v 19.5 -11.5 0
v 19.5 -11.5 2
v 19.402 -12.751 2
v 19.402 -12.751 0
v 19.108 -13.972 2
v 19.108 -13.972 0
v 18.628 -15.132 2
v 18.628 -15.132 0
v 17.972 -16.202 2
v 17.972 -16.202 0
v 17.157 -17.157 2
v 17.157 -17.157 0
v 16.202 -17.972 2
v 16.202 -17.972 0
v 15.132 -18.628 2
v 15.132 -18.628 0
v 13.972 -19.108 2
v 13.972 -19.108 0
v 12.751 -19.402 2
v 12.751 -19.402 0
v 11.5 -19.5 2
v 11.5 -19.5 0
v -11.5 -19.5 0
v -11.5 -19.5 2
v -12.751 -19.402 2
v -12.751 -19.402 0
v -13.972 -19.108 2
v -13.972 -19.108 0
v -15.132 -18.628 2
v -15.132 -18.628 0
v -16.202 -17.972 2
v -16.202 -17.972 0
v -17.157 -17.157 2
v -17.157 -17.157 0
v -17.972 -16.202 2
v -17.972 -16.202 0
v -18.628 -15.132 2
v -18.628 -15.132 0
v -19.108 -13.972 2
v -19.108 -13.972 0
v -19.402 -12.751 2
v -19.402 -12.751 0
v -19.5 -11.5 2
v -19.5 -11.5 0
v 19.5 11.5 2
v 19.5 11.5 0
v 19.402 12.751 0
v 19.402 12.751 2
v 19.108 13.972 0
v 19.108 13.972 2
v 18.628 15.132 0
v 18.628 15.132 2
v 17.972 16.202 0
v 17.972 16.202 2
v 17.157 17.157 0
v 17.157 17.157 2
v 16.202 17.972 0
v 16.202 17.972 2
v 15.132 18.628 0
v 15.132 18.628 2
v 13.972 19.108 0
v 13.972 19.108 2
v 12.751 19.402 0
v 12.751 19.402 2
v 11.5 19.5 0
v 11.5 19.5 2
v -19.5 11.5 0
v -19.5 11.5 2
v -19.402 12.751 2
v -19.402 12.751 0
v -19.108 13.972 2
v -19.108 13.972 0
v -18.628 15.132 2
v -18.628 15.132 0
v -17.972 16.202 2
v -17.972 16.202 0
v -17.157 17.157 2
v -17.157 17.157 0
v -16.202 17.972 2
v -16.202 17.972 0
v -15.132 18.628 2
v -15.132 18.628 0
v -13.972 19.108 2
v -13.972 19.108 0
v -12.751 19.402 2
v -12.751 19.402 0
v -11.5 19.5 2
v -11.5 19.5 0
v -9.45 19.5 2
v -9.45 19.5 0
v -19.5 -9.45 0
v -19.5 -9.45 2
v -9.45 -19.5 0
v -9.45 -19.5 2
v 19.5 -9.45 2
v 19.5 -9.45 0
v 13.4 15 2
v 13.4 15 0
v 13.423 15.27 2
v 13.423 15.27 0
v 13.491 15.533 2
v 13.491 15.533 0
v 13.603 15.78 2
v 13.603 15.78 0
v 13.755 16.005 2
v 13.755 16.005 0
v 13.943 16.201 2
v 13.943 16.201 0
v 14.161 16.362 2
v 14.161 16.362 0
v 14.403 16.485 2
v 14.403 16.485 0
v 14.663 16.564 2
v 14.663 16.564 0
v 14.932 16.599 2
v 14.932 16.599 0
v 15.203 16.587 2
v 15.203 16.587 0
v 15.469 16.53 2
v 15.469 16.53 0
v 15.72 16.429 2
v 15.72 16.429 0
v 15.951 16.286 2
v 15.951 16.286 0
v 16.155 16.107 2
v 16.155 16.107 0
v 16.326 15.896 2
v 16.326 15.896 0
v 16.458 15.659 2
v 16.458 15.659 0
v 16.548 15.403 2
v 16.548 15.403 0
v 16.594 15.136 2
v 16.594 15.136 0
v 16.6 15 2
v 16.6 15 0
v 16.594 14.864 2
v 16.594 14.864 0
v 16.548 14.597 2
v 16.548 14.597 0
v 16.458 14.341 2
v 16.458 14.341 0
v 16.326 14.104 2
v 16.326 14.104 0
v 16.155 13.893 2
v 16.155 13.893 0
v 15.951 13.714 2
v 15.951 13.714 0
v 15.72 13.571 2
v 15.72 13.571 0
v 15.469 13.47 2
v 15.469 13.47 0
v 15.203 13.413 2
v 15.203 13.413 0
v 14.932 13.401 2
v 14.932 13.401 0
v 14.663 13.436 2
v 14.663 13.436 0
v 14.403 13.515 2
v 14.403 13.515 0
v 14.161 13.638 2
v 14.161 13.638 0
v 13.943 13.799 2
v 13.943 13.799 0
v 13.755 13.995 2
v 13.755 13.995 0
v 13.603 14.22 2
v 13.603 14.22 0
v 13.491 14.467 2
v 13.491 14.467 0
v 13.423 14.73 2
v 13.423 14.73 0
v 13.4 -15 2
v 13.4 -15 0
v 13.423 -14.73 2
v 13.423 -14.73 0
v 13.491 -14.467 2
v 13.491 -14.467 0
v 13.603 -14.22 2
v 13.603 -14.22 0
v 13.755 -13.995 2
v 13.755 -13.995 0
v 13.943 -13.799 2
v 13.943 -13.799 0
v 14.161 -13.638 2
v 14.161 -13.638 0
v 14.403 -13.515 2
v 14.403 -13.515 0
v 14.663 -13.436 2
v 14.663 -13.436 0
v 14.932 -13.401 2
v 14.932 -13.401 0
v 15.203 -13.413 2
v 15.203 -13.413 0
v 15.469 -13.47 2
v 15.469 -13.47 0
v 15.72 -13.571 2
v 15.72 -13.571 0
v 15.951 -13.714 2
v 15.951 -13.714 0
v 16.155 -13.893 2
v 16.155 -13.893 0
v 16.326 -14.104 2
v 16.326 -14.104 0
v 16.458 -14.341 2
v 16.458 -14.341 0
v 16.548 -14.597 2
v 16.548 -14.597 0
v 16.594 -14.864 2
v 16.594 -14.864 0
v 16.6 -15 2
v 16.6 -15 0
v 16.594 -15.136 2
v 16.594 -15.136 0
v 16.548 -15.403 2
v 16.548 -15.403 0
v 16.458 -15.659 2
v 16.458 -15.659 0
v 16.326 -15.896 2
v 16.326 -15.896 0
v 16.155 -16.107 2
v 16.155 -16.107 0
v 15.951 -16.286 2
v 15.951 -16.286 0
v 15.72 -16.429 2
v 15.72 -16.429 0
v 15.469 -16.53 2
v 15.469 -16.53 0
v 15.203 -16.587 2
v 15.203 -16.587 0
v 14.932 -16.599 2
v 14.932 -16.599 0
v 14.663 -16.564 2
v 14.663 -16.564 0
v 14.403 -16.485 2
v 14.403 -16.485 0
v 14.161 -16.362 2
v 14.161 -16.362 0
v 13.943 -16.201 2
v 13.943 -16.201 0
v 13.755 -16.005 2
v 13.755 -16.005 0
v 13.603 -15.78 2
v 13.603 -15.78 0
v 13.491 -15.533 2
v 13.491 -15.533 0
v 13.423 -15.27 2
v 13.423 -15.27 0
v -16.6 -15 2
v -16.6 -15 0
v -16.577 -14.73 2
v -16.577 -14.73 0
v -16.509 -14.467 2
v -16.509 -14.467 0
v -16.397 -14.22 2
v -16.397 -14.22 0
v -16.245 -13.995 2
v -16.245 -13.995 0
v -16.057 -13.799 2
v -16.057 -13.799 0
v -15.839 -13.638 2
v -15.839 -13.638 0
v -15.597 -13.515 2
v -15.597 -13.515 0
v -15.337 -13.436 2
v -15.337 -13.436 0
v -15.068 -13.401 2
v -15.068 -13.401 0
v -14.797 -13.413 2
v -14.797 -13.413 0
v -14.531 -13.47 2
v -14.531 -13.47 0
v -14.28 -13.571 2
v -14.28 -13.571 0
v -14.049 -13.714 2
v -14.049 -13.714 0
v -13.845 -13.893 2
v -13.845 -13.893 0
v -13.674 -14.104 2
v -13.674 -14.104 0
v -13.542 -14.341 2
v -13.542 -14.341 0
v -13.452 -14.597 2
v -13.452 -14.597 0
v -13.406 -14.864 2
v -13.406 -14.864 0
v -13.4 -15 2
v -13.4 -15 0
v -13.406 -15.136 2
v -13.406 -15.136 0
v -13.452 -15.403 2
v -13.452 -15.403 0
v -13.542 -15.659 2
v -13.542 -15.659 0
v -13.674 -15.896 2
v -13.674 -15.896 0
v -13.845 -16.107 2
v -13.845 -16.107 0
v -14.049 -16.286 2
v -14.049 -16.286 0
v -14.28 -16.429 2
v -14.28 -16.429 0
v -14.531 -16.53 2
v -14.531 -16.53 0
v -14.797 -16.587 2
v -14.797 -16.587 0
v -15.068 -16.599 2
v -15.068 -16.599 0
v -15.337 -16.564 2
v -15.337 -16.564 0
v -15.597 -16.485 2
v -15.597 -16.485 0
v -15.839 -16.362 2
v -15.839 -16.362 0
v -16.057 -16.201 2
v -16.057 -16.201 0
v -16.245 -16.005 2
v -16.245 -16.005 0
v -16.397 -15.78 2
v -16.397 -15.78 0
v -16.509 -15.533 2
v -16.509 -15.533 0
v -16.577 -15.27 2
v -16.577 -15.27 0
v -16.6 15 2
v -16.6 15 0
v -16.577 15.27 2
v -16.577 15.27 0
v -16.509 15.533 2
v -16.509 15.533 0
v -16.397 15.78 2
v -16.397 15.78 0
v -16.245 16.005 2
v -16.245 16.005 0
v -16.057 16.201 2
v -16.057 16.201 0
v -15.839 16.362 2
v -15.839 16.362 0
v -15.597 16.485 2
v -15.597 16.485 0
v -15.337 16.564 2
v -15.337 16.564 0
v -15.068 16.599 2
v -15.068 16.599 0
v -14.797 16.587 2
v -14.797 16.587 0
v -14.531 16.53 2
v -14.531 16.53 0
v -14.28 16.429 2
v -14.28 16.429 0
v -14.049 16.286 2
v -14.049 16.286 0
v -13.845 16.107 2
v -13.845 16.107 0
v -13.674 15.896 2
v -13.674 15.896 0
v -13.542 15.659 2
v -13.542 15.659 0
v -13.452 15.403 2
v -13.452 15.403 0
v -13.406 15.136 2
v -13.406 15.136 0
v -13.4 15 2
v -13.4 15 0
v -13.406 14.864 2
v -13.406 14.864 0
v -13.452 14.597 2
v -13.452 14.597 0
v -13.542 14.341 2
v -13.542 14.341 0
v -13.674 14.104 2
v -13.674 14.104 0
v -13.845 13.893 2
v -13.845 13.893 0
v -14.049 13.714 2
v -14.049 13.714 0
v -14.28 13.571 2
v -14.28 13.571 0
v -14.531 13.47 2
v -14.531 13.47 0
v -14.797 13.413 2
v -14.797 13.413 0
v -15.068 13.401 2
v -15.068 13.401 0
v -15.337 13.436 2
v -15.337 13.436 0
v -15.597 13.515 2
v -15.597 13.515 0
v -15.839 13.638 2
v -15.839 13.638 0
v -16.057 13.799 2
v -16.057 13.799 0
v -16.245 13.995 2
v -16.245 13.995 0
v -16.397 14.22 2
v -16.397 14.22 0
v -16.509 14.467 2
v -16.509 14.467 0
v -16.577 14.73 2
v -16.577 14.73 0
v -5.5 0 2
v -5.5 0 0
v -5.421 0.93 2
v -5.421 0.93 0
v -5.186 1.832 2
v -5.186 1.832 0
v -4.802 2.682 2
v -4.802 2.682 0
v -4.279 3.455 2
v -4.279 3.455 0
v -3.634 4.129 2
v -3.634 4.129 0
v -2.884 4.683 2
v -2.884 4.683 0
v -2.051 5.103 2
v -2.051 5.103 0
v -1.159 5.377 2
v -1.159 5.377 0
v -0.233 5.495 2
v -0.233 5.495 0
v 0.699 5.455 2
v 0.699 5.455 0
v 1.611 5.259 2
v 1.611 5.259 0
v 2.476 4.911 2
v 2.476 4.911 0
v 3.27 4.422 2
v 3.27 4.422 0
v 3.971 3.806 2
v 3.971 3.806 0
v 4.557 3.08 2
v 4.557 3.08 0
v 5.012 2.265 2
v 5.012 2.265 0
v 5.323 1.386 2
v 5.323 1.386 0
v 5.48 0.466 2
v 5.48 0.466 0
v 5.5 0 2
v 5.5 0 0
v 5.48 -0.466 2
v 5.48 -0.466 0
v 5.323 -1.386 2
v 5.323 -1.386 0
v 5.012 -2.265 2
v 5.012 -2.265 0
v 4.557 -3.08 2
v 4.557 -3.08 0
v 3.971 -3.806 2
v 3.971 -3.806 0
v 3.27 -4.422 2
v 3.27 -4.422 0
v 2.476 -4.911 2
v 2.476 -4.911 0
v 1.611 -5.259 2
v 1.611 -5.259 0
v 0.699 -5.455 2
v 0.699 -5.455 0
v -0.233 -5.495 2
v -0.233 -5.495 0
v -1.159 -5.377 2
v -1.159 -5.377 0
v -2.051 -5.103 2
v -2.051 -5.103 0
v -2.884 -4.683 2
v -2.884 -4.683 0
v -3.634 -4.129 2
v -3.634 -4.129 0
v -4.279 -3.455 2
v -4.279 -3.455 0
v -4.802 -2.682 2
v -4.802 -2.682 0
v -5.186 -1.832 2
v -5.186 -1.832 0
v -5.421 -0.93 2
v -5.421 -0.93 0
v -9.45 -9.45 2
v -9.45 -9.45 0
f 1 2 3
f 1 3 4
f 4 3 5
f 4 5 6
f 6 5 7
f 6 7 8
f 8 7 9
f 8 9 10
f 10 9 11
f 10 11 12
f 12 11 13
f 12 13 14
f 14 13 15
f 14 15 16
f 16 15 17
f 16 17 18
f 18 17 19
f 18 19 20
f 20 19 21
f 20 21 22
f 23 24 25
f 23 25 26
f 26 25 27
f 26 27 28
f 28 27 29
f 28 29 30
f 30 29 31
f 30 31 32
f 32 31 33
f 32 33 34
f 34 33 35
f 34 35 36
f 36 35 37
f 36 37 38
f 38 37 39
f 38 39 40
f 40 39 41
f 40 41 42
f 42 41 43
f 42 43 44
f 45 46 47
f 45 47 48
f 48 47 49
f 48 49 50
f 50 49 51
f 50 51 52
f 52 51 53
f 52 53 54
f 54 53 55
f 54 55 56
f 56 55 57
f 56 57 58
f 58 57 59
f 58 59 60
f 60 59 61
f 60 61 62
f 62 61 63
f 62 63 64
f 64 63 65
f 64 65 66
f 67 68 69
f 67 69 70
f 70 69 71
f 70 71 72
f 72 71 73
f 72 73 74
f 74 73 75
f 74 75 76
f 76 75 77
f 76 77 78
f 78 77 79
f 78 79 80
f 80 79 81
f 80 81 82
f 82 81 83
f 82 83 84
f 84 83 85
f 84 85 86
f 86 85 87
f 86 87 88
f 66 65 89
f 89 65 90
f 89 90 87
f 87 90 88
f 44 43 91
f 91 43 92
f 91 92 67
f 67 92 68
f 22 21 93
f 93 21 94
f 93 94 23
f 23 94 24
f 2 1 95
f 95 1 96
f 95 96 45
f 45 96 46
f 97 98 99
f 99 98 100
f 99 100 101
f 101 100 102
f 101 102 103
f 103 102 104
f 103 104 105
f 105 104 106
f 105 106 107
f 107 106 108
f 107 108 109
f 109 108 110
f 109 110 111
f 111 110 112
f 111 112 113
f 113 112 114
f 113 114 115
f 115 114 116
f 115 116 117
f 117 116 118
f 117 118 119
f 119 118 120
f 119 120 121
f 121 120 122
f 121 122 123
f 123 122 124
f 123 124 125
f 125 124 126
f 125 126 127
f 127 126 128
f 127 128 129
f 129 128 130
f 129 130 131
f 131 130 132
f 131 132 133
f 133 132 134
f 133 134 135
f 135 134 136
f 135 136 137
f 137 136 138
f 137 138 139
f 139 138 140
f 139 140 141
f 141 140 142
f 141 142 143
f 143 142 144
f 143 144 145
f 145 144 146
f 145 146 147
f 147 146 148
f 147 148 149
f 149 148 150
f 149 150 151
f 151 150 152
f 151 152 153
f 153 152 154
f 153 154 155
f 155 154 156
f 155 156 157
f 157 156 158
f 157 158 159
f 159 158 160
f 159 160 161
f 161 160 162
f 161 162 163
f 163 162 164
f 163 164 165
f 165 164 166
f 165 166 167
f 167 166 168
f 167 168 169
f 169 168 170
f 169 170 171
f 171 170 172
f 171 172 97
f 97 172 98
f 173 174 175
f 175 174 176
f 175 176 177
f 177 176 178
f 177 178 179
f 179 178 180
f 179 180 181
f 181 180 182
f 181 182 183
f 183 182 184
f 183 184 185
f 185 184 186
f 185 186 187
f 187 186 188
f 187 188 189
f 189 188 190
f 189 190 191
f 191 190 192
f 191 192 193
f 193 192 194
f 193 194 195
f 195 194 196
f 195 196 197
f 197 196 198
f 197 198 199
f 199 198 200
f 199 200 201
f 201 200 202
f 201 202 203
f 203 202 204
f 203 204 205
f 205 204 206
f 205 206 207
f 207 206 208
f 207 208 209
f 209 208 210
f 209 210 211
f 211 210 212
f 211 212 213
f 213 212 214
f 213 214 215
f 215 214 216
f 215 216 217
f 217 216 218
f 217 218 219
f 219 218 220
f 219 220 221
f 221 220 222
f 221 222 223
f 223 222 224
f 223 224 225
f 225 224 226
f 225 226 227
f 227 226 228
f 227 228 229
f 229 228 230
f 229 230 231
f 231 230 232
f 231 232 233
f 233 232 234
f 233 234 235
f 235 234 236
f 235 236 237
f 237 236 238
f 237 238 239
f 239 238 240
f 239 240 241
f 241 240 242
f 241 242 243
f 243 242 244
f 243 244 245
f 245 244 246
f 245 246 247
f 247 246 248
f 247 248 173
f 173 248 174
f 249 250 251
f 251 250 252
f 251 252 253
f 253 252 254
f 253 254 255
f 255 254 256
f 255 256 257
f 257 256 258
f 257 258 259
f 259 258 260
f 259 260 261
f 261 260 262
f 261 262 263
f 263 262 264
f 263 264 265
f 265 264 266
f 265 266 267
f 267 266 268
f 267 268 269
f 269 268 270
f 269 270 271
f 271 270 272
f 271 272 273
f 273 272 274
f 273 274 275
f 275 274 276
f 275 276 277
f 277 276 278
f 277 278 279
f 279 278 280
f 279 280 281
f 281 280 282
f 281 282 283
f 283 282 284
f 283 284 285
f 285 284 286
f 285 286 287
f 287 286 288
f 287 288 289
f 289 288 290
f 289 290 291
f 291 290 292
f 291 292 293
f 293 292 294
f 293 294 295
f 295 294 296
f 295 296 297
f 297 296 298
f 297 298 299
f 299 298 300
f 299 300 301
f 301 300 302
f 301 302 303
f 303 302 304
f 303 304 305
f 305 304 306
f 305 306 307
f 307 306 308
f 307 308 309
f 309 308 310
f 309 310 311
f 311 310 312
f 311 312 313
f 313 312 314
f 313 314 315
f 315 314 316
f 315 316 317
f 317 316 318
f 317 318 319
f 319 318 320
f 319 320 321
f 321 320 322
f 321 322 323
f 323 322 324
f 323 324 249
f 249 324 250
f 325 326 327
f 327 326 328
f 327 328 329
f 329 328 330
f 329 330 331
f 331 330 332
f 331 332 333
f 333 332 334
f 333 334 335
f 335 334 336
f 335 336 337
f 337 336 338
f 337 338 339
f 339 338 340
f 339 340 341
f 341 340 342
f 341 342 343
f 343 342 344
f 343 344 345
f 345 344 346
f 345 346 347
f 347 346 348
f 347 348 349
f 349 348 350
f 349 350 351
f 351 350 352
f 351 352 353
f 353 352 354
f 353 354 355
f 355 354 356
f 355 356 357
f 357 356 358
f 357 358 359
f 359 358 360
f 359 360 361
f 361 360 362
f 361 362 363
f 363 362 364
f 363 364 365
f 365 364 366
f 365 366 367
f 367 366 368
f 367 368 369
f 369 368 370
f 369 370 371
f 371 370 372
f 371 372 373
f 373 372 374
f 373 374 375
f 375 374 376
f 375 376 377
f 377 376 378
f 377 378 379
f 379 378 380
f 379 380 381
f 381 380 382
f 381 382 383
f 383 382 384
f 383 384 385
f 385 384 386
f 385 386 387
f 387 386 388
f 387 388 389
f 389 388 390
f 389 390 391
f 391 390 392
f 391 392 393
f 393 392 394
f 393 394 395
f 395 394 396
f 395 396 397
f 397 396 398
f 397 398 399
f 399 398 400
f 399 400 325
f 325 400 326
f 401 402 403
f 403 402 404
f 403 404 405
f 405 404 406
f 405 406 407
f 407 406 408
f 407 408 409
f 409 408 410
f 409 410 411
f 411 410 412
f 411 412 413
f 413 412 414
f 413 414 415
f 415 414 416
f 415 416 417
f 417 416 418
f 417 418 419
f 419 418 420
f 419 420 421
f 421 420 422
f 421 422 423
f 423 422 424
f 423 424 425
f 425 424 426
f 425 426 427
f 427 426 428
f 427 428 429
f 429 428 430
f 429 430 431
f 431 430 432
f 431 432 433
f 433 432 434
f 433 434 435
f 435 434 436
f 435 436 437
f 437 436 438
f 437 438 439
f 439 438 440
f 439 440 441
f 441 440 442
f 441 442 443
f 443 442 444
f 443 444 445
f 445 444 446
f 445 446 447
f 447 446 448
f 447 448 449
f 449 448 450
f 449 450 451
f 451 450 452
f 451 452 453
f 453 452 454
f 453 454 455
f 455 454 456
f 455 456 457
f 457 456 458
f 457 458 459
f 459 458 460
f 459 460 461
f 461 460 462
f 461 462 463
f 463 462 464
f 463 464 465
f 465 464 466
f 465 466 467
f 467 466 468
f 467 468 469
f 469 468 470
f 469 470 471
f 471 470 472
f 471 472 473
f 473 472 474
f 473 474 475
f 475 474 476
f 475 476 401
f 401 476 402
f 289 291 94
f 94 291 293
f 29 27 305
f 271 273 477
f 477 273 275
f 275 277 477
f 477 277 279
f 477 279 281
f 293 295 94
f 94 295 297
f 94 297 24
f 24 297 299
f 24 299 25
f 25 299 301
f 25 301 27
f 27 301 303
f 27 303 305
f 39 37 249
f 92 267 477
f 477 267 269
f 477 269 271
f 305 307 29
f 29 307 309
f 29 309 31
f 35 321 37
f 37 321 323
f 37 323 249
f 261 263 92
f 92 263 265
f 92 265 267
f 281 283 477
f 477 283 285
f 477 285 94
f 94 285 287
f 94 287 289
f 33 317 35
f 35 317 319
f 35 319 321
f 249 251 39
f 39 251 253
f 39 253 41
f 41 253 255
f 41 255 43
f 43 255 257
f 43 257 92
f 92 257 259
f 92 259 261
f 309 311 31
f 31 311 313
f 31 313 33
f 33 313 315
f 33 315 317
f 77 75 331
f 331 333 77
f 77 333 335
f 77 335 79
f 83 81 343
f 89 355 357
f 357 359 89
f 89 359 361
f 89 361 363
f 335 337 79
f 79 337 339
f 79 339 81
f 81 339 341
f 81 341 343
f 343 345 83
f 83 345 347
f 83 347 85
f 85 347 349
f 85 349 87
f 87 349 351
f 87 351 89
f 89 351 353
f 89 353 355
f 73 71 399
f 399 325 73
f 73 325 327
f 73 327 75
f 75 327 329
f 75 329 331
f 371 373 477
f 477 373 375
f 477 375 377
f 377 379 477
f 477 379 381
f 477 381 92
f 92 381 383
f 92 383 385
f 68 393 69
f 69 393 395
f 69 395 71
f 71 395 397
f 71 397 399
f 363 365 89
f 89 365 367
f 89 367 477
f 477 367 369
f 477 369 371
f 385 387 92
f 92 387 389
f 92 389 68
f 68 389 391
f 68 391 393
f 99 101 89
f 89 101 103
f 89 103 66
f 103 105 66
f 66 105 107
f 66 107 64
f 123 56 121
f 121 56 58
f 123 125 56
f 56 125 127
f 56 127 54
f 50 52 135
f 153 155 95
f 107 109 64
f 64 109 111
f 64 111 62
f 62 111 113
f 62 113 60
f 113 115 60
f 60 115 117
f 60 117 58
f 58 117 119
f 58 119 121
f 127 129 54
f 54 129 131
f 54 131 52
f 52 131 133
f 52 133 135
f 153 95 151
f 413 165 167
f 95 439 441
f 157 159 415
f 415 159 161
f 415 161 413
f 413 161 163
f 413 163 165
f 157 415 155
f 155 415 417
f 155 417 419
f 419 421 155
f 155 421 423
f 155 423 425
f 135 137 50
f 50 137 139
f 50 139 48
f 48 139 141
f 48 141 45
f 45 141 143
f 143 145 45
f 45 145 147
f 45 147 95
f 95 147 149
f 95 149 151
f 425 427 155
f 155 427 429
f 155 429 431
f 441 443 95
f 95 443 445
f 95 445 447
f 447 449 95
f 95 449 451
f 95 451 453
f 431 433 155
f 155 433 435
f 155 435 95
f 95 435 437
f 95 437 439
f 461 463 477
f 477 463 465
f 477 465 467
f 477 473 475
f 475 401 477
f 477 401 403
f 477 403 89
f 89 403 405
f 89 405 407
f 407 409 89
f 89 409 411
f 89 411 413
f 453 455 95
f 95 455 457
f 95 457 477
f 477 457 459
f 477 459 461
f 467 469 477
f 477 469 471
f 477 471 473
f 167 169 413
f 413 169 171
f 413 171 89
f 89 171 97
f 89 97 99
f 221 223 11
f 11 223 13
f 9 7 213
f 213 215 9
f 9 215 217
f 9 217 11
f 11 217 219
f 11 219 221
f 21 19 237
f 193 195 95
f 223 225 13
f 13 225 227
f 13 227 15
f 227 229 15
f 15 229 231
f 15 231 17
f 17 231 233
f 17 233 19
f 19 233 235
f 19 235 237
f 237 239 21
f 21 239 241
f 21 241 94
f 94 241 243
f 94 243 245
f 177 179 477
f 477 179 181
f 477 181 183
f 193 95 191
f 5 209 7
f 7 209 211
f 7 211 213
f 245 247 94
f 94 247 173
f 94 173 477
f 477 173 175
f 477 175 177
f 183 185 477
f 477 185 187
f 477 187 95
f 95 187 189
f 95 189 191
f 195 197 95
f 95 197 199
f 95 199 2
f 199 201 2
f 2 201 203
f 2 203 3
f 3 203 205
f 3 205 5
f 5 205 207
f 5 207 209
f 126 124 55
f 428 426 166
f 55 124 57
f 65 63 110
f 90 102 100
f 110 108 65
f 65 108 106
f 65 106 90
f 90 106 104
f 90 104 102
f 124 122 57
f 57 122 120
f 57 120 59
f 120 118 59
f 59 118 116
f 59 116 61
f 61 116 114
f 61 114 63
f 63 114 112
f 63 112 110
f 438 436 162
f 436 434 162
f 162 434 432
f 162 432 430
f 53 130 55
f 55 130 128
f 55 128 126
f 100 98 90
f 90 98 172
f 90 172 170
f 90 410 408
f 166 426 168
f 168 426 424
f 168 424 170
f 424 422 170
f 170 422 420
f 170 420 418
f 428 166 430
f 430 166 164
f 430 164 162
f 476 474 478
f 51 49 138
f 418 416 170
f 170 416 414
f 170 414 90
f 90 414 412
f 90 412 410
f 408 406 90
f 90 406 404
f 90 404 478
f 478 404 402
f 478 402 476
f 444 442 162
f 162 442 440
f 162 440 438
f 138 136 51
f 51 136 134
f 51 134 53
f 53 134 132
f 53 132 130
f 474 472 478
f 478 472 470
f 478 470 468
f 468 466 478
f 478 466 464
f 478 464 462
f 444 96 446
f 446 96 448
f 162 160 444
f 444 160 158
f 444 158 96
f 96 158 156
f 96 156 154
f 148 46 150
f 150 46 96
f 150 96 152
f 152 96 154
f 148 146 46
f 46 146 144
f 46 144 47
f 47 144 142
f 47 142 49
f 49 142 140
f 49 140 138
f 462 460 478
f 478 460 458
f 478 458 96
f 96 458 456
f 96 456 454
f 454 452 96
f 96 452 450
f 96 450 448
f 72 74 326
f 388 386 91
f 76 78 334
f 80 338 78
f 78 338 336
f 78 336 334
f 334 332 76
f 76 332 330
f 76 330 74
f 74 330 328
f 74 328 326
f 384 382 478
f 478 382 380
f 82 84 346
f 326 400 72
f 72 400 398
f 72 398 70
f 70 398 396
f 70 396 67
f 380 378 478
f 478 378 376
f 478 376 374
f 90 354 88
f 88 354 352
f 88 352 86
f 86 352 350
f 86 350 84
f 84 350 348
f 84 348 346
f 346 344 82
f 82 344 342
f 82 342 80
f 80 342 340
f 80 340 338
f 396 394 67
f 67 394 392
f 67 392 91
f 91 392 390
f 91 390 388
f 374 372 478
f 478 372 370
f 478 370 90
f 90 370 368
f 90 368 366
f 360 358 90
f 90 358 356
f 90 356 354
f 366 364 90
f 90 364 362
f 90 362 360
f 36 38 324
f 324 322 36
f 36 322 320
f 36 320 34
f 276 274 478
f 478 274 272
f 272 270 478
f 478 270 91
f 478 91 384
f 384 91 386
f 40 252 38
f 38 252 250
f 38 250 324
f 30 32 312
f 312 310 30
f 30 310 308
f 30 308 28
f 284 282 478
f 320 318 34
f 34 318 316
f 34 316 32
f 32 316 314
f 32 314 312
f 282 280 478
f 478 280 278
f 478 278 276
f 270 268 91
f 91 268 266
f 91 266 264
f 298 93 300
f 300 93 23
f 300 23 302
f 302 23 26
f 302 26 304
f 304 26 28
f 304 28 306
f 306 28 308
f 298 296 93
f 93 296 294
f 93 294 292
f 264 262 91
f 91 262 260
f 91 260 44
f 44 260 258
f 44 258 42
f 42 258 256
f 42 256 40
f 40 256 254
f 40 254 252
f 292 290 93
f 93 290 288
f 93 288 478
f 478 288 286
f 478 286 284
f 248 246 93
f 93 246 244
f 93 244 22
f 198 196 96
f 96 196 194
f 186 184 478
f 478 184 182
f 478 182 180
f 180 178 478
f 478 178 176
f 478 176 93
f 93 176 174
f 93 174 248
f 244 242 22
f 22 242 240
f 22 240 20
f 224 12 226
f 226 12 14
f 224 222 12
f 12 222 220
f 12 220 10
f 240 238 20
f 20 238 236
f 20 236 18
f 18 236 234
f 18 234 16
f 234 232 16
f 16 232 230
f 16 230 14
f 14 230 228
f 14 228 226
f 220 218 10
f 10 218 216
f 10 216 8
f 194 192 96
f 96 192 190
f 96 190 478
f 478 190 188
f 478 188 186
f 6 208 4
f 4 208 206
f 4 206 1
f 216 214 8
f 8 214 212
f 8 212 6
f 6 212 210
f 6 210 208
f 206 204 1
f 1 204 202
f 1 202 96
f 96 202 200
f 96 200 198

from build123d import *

# Parameters (mm, degrees)
SKETCH_1_R      = 1.6
SKETCH_1_R_2    = 5.5
EXTRUDE_2_DEPTH = 2
FILLET_6_R      = 8
FILLET_7_R      = 8
FILLET_8_R      = 8
FILLET_9_R      = 8


with BuildPart() as part:
    # 草图1 → 凸台-拉伸2 (new body)
    # profile 1 of 2: a face of its own
    with BuildSketch(Plane.XY):
        with BuildLine():
            Line((-16.6, 15), (-19.5, 15))
            Line((-19.5, 15), (-19.5, -19.5))
            Line((-19.5, -19.5), (19.5, -19.5))
            Line((19.5, -19.5), (19.5, 19.5))
            Line((19.5, 19.5), (-15, 19.5))
            Line((-15, 19.5), (-15, 16.6))
            ThreePointArc((-15, 16.6), (-13.86862915, 16.13137085), (-13.4, 15))
            ThreePointArc((-13.4, 15), (-15, 13.4), (-16.6, 15))
        make_face()
        with Locations((-15, -15)):
            Circle(SKETCH_1_R, mode=Mode.SUBTRACT)
        with Locations((15, -15)):
            Circle(SKETCH_1_R, mode=Mode.SUBTRACT)
        Circle(SKETCH_1_R_2, mode=Mode.SUBTRACT)
        with Locations((15, 15)):
            Circle(SKETCH_1_R, mode=Mode.SUBTRACT)
    # profile 2 of 2: a face of its own
    with BuildSketch(Plane.XY):
        with BuildLine():
            Line((-19.5, 19.5), (-19.5, 15))
            Line((-19.5, 15), (-16.6, 15))
            ThreePointArc((-16.6, 15), (-16.13137085, 16.13137085), (-15, 16.6))
            Line((-15, 16.6), (-15, 19.5))
            Line((-15, 19.5), (-19.5, 19.5))
        make_face()
    extrude(amount=EXTRUDE_2_DEPTH)

    # 圆角6
    fillet_6_edges = [part.edges().sort_by_distance(p)[0] for p in [
        (-19.5, 19.5, 1),
    ]]
    fillet(fillet_6_edges, radius=FILLET_6_R)

    # 圆角7
    fillet_7_edges = [part.edges().sort_by_distance(p)[0] for p in [
        (19.5, 19.5, 1),
    ]]
    fillet(fillet_7_edges, radius=FILLET_7_R)

    # 圆角8
    fillet_8_edges = [part.edges().sort_by_distance(p)[0] for p in [
        (-19.5, -19.5, 1),
    ]]
    fillet(fillet_8_edges, radius=FILLET_8_R)

    # 圆角9
    fillet_9_edges = [part.edges().sort_by_distance(p)[0] for p in [
        (19.5, -19.5, 1),
    ]]
    fillet(fillet_9_edges, radius=FILLET_9_R)


solid = part.part
